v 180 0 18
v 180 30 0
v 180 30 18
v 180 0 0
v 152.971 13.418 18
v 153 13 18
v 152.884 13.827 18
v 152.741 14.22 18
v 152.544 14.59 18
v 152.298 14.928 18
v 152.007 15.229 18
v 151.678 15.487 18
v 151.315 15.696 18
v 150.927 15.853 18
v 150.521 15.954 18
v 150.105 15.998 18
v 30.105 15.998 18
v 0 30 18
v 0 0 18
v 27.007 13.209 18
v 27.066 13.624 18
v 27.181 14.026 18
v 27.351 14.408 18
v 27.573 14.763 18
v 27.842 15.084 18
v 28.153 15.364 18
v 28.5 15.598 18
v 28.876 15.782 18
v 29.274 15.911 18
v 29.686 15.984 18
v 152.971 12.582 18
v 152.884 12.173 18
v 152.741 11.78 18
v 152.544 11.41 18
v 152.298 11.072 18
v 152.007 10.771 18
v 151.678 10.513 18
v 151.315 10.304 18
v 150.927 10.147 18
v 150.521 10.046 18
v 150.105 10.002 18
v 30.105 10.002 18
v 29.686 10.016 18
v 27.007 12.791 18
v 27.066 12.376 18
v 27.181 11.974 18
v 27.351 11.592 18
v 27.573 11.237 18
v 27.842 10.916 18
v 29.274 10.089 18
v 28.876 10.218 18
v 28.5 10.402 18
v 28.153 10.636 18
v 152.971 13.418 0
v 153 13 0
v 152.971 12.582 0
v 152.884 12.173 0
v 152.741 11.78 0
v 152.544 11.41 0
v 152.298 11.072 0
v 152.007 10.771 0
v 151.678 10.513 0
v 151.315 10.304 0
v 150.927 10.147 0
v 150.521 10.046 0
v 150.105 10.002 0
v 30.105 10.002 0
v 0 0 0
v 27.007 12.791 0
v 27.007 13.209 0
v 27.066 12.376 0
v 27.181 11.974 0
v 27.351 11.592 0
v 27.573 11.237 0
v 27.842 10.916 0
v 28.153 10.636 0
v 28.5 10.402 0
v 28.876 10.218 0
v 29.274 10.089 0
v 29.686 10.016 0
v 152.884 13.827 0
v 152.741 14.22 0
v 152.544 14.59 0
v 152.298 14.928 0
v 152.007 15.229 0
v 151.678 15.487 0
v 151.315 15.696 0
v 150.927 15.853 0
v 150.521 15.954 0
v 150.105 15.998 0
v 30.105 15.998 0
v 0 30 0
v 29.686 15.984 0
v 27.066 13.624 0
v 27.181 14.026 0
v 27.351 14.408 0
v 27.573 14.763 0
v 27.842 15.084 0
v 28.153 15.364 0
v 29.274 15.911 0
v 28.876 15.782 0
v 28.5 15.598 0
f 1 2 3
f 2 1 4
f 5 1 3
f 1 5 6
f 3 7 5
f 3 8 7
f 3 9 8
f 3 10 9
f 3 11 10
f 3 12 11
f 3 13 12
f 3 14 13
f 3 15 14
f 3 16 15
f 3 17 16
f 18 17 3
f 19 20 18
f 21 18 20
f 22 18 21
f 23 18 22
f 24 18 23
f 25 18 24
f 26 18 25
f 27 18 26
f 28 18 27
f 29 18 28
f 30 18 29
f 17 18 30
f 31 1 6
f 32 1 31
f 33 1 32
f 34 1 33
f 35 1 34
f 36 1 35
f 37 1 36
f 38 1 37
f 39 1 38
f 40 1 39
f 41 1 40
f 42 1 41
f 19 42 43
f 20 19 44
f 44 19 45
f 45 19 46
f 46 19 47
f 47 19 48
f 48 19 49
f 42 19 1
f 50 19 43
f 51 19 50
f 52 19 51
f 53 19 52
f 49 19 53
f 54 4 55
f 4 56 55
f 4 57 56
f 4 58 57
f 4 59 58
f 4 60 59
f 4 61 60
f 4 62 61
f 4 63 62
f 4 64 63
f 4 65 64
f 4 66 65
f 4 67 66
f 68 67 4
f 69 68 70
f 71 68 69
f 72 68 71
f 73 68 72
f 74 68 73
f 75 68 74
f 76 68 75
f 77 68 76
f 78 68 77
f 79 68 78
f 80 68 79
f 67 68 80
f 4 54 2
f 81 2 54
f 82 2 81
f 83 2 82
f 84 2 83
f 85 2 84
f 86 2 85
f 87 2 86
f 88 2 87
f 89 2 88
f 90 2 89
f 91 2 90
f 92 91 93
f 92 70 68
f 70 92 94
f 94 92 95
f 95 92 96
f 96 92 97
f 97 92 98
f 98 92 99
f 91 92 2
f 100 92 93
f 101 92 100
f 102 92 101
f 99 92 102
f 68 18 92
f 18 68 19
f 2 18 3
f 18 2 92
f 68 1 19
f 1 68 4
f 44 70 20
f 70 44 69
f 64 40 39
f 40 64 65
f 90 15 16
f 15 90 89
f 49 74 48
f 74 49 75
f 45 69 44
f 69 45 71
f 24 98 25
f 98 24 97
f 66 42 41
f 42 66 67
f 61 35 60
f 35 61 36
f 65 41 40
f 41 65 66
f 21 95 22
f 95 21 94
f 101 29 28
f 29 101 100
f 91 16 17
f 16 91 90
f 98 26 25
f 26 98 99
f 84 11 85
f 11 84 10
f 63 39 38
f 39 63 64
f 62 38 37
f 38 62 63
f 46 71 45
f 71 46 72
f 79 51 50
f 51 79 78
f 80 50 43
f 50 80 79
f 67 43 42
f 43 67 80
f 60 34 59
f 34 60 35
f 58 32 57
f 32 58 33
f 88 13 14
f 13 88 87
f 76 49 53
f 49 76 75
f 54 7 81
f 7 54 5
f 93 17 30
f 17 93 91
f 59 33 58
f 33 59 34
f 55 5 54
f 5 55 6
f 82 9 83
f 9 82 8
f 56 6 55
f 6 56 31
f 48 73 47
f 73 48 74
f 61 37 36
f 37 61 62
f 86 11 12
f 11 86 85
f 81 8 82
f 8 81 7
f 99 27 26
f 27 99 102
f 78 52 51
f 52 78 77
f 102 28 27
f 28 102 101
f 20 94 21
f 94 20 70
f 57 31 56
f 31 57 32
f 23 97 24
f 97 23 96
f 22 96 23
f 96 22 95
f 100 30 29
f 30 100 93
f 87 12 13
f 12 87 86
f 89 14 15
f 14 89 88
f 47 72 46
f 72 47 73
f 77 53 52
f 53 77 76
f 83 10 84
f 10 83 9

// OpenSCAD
// file: screw-hole.scad
// Generic screw holder

// Copyright (C) 2021 Jeremy Bennett <jeremy@jeremybennett.com>

// Contributor Jeremy Bennett <jeremy@jeremybennett.com>

// SPDX-License-Identifier: CC-BY-SA-4.0


// The countersink height is calculated as:
//
//      x - y
//    ----------
//    2 tan(B/2)
//
// where x is the head diameter, y is the shank diameter and B is the head
// angle (100 degrees for DIN 7997x I believe).
//
// Table of 2 tan(B/2) for various B
//
//  60    1.1547
//  82    1.7386
//  90    2.0000
// 100    2.3835
// 110    2.8563

// Small amount
CS_EPS = 0.1;

// Height of rim above countersink
CS_RIM_HEIGHT = 0.3;

// Screw height - effectively infinite!
SCREW_HEIGHT = 100;

// Table of screw dimensions for DIN 7997z countersunk wood screws
// Entry is thread diameter, head diameter, head height.
SCREW_TAB = [ [2.5,  4.7, 1.50],
	      [3.0,  5.6, 1.65],
	      [3.5,  6.5, 1.93],
	      [4.0,  7.5, 2.20],
	      [4.5,  8.3, 2.35],
	      [5.0,  9.2, 2.50],
	      [5.5, 10.2, 2.75],
	      [6.0, 11.0, 3.00],
              [0.0,  0.0, 0.00] ];		// End marker

// Recursively look up dimensions in the SCREW_TAB
function recursive_screw_dims (diam, n) =
     ( (SCREW_TAB[n][0] == 0.0) ? SCREW_TAB[n] :
       (SCREW_TAB[n][0] == diam) ? SCREW_TAB[n] :
       recursive_screw_dims (diam, n + 1) );

// Look up a screw's dimensions
function screw_dims (diam = 4.0) = recursive_screw_dims (diam, 0);

// Hole for a countersink screw
module screw_hole (shank_diam, invert = true) {
     let (dims = screw_dims (shank_diam),
	  head_diam = dims[1],
	  cs_height = dims[2],
	  screw_angle = invert ? 180 : 0) {
	  rotate (a = [0, screw_angle, 0]) {
	       cylinder(r = head_diam / 2, h = CS_RIM_HEIGHT + CS_EPS,
			center = false, $fn = 45);
	       translate(v = [0, 0, CS_RIM_HEIGHT])
	            cylinder(r1 = head_diam / 2, r2 = shank_diam / 2,
			     h = cs_height, center = false, $fn = 45);
	       cylinder(r = shank_diam / 2, h = SCREW_HEIGHT, center = false,
			$fn = 45);
	  }
     }
}
// main file
// Slot support
//
// Copyright (C) 2021 Jeremy Bennett <jeremy@jeremybennett.com>
// Contributor Jeremy Bennett <jeremy@jeremybennett.com>
//
// This is part of the open source laptop stand
//
// SPDX-License-Identifier: CC-BY-SA-4.0

// Slotted support for the back board

include <screw-hole.scad>

EPS = 0.01;
D = 18.0;
L = 180.0;
W = 30.0;

difference () {
     // The board
     cube (size = [L, W, D], center = false);
     // slot
     hull () {
	  translate (v = [30, 13, 0])
	       cylinder (r = 3.0, h = D * 4, center = true, $fn = 45);
	  translate (v = [L - 30, 13, 0])
	       cylinder (r = 3.0, h = D * 4, center = true, $fn = 45);
     }
}
